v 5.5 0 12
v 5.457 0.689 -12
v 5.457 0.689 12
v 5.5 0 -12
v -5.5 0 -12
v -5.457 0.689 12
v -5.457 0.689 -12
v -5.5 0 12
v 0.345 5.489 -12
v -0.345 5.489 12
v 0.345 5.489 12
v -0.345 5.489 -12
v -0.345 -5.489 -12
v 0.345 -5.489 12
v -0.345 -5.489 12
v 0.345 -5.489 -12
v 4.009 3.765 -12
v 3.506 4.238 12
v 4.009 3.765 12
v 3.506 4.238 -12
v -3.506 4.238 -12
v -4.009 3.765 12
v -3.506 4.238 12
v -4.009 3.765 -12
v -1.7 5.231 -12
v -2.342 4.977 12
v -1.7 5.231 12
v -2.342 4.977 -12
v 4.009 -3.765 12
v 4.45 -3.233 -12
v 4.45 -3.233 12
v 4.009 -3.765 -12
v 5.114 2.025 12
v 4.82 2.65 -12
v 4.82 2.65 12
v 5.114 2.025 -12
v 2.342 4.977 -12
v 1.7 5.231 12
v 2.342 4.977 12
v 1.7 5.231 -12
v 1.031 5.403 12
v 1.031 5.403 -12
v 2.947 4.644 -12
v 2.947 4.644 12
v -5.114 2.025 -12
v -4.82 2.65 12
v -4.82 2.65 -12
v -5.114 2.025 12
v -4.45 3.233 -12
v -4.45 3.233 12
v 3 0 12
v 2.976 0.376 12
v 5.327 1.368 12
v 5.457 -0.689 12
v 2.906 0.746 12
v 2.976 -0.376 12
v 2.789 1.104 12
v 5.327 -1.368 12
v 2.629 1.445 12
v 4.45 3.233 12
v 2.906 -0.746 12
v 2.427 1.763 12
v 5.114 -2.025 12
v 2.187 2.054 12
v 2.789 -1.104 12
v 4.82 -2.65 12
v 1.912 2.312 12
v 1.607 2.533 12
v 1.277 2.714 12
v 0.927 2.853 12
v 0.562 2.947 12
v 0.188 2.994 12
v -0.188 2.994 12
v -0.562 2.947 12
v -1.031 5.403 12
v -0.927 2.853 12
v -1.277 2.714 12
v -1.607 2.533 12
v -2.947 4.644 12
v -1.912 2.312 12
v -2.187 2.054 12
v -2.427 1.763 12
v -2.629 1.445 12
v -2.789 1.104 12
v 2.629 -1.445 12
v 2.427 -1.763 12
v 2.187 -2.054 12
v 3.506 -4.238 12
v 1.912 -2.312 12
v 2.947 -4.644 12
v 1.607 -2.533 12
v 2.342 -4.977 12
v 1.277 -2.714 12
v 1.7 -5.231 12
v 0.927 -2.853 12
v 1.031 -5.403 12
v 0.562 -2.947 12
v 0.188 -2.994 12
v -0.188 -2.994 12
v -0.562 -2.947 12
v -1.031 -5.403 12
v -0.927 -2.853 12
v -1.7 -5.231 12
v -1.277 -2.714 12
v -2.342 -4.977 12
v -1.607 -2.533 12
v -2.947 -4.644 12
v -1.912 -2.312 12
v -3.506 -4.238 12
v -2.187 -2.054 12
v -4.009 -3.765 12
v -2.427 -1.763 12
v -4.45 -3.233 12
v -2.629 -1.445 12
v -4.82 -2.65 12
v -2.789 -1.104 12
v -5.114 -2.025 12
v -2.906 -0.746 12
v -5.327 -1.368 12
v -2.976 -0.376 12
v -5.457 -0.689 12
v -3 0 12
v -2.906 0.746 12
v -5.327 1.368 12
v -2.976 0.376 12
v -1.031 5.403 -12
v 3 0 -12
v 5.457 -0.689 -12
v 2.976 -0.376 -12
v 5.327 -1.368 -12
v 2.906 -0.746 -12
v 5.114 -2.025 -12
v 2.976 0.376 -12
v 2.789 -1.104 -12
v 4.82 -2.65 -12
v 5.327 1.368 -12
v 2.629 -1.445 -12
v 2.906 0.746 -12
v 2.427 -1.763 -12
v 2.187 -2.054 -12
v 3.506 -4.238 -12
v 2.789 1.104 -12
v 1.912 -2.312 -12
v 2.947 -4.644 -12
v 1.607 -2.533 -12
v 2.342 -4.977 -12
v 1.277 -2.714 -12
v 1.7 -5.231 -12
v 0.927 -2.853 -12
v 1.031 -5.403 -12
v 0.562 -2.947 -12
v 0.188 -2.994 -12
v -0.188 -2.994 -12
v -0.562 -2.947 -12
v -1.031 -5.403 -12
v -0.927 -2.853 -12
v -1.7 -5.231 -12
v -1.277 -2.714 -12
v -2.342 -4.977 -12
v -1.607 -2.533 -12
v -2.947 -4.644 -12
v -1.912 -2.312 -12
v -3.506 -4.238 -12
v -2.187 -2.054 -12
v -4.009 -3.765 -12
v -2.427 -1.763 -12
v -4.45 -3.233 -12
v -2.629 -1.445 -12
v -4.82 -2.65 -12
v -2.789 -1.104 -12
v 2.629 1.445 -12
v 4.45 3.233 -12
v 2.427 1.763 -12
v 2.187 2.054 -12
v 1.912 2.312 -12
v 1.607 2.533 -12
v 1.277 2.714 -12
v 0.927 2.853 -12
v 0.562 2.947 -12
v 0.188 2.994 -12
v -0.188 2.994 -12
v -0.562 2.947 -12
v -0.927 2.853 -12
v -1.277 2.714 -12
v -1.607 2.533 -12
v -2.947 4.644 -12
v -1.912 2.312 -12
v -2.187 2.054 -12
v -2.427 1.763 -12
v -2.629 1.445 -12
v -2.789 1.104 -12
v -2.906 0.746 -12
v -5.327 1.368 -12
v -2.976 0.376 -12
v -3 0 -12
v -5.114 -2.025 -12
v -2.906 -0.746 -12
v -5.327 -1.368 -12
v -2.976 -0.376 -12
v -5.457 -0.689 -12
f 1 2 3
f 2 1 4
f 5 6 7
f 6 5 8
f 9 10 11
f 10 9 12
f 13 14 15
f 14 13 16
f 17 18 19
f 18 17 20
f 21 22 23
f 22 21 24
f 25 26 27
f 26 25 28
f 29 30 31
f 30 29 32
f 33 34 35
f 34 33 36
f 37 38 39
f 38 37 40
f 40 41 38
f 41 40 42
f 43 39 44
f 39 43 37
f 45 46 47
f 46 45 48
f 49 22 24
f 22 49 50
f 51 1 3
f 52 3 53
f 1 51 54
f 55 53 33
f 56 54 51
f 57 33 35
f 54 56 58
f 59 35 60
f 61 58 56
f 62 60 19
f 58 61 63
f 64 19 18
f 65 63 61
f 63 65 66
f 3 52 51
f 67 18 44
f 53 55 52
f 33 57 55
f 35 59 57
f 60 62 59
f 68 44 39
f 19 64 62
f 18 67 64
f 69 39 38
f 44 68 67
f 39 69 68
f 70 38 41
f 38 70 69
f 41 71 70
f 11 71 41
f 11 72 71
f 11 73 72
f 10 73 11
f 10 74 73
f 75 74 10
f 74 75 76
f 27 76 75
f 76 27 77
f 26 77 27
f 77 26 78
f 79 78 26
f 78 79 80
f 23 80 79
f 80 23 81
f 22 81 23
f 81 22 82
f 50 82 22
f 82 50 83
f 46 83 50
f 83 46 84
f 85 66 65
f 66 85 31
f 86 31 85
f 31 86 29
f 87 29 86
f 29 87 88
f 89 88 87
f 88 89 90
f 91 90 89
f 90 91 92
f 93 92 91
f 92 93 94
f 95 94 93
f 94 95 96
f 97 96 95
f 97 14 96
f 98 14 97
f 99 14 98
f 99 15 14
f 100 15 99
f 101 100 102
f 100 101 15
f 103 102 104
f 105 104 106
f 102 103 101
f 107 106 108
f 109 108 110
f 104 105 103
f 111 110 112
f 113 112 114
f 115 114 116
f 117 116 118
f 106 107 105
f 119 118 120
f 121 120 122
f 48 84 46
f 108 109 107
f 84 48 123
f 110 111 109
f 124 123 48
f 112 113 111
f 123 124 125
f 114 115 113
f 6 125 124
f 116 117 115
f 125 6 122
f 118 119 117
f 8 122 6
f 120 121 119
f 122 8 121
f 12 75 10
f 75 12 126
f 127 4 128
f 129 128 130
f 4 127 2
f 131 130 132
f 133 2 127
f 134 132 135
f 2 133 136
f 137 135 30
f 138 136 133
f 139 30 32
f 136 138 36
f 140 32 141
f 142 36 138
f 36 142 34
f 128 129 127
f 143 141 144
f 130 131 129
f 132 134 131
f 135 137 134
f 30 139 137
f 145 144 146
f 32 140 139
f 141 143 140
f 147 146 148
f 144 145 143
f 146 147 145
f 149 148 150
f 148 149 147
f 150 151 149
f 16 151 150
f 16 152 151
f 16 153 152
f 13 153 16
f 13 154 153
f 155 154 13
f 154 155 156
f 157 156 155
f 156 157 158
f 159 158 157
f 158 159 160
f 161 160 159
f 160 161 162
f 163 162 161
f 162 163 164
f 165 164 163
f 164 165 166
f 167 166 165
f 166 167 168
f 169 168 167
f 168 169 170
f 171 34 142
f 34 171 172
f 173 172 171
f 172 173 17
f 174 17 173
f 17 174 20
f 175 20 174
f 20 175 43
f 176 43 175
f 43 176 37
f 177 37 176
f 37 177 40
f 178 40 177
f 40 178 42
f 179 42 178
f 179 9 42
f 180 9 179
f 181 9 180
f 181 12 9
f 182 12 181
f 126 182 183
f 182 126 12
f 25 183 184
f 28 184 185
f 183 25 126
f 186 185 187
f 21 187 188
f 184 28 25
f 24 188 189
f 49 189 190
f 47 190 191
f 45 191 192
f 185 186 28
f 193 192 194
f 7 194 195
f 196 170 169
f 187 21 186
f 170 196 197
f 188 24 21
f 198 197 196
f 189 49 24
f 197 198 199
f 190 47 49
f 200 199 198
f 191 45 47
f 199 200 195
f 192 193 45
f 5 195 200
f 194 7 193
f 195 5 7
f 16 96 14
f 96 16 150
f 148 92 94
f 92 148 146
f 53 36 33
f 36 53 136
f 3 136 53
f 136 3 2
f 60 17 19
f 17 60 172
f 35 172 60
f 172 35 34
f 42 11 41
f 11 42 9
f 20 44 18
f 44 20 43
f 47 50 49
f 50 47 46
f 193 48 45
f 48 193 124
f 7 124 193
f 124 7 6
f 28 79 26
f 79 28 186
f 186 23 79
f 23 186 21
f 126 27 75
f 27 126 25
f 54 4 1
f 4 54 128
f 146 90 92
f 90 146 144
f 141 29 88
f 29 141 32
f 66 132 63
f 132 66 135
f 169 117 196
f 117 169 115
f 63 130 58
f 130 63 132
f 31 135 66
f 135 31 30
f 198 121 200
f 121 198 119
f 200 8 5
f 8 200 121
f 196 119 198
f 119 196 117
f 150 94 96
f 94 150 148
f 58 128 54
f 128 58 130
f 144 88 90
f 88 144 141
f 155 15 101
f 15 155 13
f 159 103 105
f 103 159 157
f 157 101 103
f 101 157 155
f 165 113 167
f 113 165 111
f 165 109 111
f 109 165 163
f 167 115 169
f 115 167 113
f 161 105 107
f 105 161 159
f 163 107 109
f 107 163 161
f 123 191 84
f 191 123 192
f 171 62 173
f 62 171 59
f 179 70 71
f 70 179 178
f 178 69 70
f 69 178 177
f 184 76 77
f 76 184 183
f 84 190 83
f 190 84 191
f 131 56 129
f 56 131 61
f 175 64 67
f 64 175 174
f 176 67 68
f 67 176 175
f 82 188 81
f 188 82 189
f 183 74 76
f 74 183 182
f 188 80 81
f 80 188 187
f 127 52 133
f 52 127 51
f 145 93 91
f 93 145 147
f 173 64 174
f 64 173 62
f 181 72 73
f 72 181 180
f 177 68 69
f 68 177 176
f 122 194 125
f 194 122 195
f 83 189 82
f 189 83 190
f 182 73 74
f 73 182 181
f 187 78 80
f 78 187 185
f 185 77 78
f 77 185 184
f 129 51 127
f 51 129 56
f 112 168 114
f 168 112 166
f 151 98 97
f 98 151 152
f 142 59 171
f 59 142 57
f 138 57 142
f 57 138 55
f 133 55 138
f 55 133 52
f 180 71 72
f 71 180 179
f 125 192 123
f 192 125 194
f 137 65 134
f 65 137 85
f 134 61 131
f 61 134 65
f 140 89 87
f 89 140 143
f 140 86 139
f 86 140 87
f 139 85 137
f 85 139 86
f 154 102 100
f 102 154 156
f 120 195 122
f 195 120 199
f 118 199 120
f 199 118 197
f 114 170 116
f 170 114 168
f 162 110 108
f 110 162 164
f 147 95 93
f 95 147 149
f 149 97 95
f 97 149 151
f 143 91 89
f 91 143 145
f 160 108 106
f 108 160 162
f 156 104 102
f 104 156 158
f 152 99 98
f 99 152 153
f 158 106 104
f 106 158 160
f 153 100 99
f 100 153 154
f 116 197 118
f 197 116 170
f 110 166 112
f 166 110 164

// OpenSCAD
$fn = 50;


difference() {
	union() {
		translate(v = [0, 0, -12.0000000000]) {
			cylinder(h = 24, r = 5.5000000000);
		}
	}
	union() {
		translate(v = [0, 0, -100.0000000000]) {
			cylinder(h = 200, r = 3);
		}
	}
}
